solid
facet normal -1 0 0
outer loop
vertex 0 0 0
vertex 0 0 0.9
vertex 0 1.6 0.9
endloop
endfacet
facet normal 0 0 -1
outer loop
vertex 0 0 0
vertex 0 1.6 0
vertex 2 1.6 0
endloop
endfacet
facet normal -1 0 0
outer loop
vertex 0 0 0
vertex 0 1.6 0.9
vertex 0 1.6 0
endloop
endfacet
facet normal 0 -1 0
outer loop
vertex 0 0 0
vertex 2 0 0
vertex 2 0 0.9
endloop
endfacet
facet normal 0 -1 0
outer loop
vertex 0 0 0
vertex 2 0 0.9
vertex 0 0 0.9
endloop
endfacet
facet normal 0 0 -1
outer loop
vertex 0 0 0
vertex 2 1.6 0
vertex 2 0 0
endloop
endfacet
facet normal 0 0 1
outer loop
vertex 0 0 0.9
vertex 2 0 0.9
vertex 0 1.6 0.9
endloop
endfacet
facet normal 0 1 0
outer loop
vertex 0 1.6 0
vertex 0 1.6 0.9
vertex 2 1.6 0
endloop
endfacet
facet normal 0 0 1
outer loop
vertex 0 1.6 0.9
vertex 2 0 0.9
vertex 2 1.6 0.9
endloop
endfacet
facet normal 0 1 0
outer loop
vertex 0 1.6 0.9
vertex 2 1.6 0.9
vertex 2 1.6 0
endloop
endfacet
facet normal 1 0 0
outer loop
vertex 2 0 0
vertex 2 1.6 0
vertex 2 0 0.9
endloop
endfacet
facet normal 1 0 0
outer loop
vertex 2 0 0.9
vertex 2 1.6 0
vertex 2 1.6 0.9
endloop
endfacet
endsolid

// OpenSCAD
/* Warning, this is a very basic generator with a lot of approximation 
input data : [VDFN, SMX, 2x1.6x0.9mm, 4, , A, C04-00486A]
generated by com.zoubworld.electronics.cad.model3d.Basic
Date : Sun Feb 15 10:50:48 CET 2026
*/

//body
color("black")
translate([0,0,0])
cube([2.0,1.6,0.9], center=false);
